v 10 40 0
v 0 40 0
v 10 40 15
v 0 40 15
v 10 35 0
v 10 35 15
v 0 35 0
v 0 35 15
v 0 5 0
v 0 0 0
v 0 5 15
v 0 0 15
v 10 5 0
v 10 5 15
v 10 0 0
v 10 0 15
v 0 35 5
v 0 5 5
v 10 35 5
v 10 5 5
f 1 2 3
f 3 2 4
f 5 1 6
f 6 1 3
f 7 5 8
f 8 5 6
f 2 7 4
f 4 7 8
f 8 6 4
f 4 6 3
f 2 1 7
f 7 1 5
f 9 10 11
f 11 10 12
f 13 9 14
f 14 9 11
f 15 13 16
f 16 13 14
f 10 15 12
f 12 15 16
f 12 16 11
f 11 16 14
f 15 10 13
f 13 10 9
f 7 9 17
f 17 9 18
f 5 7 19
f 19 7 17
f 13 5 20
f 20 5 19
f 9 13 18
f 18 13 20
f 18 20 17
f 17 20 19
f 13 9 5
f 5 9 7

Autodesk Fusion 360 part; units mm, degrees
sketch "Szkic1" plane through (0, 0, 0) normal (0, 0, 1) x (1, 0, 0)
  line L0 (0, 0) -> (10, 0)
  line L1 (10, 0) -> (10, 40)
  line L2 (0, 0) -> (0, 40)
  line L3 (0, 40) -> (10, 40)
  line L4 (0, 5) -> (10, 5)
  line L5 (0, 35) -> (10, 35)
  dimension "d3" = 40
extrude "Wyciągnięcie proste1" add sketch "Szkic1" along normal blind 15 contours L0 L1 L2 L4 | L1 L2 L3 L5 makes body 1 at (3.3333, 40, 5) makes body 2 at (3.3333, 5, 5)
extrude "Wyciągnięcie proste2" add sketch "Szkic1" along normal blind 5 separate body contours L1 L2 L4 L5 makes body 3
